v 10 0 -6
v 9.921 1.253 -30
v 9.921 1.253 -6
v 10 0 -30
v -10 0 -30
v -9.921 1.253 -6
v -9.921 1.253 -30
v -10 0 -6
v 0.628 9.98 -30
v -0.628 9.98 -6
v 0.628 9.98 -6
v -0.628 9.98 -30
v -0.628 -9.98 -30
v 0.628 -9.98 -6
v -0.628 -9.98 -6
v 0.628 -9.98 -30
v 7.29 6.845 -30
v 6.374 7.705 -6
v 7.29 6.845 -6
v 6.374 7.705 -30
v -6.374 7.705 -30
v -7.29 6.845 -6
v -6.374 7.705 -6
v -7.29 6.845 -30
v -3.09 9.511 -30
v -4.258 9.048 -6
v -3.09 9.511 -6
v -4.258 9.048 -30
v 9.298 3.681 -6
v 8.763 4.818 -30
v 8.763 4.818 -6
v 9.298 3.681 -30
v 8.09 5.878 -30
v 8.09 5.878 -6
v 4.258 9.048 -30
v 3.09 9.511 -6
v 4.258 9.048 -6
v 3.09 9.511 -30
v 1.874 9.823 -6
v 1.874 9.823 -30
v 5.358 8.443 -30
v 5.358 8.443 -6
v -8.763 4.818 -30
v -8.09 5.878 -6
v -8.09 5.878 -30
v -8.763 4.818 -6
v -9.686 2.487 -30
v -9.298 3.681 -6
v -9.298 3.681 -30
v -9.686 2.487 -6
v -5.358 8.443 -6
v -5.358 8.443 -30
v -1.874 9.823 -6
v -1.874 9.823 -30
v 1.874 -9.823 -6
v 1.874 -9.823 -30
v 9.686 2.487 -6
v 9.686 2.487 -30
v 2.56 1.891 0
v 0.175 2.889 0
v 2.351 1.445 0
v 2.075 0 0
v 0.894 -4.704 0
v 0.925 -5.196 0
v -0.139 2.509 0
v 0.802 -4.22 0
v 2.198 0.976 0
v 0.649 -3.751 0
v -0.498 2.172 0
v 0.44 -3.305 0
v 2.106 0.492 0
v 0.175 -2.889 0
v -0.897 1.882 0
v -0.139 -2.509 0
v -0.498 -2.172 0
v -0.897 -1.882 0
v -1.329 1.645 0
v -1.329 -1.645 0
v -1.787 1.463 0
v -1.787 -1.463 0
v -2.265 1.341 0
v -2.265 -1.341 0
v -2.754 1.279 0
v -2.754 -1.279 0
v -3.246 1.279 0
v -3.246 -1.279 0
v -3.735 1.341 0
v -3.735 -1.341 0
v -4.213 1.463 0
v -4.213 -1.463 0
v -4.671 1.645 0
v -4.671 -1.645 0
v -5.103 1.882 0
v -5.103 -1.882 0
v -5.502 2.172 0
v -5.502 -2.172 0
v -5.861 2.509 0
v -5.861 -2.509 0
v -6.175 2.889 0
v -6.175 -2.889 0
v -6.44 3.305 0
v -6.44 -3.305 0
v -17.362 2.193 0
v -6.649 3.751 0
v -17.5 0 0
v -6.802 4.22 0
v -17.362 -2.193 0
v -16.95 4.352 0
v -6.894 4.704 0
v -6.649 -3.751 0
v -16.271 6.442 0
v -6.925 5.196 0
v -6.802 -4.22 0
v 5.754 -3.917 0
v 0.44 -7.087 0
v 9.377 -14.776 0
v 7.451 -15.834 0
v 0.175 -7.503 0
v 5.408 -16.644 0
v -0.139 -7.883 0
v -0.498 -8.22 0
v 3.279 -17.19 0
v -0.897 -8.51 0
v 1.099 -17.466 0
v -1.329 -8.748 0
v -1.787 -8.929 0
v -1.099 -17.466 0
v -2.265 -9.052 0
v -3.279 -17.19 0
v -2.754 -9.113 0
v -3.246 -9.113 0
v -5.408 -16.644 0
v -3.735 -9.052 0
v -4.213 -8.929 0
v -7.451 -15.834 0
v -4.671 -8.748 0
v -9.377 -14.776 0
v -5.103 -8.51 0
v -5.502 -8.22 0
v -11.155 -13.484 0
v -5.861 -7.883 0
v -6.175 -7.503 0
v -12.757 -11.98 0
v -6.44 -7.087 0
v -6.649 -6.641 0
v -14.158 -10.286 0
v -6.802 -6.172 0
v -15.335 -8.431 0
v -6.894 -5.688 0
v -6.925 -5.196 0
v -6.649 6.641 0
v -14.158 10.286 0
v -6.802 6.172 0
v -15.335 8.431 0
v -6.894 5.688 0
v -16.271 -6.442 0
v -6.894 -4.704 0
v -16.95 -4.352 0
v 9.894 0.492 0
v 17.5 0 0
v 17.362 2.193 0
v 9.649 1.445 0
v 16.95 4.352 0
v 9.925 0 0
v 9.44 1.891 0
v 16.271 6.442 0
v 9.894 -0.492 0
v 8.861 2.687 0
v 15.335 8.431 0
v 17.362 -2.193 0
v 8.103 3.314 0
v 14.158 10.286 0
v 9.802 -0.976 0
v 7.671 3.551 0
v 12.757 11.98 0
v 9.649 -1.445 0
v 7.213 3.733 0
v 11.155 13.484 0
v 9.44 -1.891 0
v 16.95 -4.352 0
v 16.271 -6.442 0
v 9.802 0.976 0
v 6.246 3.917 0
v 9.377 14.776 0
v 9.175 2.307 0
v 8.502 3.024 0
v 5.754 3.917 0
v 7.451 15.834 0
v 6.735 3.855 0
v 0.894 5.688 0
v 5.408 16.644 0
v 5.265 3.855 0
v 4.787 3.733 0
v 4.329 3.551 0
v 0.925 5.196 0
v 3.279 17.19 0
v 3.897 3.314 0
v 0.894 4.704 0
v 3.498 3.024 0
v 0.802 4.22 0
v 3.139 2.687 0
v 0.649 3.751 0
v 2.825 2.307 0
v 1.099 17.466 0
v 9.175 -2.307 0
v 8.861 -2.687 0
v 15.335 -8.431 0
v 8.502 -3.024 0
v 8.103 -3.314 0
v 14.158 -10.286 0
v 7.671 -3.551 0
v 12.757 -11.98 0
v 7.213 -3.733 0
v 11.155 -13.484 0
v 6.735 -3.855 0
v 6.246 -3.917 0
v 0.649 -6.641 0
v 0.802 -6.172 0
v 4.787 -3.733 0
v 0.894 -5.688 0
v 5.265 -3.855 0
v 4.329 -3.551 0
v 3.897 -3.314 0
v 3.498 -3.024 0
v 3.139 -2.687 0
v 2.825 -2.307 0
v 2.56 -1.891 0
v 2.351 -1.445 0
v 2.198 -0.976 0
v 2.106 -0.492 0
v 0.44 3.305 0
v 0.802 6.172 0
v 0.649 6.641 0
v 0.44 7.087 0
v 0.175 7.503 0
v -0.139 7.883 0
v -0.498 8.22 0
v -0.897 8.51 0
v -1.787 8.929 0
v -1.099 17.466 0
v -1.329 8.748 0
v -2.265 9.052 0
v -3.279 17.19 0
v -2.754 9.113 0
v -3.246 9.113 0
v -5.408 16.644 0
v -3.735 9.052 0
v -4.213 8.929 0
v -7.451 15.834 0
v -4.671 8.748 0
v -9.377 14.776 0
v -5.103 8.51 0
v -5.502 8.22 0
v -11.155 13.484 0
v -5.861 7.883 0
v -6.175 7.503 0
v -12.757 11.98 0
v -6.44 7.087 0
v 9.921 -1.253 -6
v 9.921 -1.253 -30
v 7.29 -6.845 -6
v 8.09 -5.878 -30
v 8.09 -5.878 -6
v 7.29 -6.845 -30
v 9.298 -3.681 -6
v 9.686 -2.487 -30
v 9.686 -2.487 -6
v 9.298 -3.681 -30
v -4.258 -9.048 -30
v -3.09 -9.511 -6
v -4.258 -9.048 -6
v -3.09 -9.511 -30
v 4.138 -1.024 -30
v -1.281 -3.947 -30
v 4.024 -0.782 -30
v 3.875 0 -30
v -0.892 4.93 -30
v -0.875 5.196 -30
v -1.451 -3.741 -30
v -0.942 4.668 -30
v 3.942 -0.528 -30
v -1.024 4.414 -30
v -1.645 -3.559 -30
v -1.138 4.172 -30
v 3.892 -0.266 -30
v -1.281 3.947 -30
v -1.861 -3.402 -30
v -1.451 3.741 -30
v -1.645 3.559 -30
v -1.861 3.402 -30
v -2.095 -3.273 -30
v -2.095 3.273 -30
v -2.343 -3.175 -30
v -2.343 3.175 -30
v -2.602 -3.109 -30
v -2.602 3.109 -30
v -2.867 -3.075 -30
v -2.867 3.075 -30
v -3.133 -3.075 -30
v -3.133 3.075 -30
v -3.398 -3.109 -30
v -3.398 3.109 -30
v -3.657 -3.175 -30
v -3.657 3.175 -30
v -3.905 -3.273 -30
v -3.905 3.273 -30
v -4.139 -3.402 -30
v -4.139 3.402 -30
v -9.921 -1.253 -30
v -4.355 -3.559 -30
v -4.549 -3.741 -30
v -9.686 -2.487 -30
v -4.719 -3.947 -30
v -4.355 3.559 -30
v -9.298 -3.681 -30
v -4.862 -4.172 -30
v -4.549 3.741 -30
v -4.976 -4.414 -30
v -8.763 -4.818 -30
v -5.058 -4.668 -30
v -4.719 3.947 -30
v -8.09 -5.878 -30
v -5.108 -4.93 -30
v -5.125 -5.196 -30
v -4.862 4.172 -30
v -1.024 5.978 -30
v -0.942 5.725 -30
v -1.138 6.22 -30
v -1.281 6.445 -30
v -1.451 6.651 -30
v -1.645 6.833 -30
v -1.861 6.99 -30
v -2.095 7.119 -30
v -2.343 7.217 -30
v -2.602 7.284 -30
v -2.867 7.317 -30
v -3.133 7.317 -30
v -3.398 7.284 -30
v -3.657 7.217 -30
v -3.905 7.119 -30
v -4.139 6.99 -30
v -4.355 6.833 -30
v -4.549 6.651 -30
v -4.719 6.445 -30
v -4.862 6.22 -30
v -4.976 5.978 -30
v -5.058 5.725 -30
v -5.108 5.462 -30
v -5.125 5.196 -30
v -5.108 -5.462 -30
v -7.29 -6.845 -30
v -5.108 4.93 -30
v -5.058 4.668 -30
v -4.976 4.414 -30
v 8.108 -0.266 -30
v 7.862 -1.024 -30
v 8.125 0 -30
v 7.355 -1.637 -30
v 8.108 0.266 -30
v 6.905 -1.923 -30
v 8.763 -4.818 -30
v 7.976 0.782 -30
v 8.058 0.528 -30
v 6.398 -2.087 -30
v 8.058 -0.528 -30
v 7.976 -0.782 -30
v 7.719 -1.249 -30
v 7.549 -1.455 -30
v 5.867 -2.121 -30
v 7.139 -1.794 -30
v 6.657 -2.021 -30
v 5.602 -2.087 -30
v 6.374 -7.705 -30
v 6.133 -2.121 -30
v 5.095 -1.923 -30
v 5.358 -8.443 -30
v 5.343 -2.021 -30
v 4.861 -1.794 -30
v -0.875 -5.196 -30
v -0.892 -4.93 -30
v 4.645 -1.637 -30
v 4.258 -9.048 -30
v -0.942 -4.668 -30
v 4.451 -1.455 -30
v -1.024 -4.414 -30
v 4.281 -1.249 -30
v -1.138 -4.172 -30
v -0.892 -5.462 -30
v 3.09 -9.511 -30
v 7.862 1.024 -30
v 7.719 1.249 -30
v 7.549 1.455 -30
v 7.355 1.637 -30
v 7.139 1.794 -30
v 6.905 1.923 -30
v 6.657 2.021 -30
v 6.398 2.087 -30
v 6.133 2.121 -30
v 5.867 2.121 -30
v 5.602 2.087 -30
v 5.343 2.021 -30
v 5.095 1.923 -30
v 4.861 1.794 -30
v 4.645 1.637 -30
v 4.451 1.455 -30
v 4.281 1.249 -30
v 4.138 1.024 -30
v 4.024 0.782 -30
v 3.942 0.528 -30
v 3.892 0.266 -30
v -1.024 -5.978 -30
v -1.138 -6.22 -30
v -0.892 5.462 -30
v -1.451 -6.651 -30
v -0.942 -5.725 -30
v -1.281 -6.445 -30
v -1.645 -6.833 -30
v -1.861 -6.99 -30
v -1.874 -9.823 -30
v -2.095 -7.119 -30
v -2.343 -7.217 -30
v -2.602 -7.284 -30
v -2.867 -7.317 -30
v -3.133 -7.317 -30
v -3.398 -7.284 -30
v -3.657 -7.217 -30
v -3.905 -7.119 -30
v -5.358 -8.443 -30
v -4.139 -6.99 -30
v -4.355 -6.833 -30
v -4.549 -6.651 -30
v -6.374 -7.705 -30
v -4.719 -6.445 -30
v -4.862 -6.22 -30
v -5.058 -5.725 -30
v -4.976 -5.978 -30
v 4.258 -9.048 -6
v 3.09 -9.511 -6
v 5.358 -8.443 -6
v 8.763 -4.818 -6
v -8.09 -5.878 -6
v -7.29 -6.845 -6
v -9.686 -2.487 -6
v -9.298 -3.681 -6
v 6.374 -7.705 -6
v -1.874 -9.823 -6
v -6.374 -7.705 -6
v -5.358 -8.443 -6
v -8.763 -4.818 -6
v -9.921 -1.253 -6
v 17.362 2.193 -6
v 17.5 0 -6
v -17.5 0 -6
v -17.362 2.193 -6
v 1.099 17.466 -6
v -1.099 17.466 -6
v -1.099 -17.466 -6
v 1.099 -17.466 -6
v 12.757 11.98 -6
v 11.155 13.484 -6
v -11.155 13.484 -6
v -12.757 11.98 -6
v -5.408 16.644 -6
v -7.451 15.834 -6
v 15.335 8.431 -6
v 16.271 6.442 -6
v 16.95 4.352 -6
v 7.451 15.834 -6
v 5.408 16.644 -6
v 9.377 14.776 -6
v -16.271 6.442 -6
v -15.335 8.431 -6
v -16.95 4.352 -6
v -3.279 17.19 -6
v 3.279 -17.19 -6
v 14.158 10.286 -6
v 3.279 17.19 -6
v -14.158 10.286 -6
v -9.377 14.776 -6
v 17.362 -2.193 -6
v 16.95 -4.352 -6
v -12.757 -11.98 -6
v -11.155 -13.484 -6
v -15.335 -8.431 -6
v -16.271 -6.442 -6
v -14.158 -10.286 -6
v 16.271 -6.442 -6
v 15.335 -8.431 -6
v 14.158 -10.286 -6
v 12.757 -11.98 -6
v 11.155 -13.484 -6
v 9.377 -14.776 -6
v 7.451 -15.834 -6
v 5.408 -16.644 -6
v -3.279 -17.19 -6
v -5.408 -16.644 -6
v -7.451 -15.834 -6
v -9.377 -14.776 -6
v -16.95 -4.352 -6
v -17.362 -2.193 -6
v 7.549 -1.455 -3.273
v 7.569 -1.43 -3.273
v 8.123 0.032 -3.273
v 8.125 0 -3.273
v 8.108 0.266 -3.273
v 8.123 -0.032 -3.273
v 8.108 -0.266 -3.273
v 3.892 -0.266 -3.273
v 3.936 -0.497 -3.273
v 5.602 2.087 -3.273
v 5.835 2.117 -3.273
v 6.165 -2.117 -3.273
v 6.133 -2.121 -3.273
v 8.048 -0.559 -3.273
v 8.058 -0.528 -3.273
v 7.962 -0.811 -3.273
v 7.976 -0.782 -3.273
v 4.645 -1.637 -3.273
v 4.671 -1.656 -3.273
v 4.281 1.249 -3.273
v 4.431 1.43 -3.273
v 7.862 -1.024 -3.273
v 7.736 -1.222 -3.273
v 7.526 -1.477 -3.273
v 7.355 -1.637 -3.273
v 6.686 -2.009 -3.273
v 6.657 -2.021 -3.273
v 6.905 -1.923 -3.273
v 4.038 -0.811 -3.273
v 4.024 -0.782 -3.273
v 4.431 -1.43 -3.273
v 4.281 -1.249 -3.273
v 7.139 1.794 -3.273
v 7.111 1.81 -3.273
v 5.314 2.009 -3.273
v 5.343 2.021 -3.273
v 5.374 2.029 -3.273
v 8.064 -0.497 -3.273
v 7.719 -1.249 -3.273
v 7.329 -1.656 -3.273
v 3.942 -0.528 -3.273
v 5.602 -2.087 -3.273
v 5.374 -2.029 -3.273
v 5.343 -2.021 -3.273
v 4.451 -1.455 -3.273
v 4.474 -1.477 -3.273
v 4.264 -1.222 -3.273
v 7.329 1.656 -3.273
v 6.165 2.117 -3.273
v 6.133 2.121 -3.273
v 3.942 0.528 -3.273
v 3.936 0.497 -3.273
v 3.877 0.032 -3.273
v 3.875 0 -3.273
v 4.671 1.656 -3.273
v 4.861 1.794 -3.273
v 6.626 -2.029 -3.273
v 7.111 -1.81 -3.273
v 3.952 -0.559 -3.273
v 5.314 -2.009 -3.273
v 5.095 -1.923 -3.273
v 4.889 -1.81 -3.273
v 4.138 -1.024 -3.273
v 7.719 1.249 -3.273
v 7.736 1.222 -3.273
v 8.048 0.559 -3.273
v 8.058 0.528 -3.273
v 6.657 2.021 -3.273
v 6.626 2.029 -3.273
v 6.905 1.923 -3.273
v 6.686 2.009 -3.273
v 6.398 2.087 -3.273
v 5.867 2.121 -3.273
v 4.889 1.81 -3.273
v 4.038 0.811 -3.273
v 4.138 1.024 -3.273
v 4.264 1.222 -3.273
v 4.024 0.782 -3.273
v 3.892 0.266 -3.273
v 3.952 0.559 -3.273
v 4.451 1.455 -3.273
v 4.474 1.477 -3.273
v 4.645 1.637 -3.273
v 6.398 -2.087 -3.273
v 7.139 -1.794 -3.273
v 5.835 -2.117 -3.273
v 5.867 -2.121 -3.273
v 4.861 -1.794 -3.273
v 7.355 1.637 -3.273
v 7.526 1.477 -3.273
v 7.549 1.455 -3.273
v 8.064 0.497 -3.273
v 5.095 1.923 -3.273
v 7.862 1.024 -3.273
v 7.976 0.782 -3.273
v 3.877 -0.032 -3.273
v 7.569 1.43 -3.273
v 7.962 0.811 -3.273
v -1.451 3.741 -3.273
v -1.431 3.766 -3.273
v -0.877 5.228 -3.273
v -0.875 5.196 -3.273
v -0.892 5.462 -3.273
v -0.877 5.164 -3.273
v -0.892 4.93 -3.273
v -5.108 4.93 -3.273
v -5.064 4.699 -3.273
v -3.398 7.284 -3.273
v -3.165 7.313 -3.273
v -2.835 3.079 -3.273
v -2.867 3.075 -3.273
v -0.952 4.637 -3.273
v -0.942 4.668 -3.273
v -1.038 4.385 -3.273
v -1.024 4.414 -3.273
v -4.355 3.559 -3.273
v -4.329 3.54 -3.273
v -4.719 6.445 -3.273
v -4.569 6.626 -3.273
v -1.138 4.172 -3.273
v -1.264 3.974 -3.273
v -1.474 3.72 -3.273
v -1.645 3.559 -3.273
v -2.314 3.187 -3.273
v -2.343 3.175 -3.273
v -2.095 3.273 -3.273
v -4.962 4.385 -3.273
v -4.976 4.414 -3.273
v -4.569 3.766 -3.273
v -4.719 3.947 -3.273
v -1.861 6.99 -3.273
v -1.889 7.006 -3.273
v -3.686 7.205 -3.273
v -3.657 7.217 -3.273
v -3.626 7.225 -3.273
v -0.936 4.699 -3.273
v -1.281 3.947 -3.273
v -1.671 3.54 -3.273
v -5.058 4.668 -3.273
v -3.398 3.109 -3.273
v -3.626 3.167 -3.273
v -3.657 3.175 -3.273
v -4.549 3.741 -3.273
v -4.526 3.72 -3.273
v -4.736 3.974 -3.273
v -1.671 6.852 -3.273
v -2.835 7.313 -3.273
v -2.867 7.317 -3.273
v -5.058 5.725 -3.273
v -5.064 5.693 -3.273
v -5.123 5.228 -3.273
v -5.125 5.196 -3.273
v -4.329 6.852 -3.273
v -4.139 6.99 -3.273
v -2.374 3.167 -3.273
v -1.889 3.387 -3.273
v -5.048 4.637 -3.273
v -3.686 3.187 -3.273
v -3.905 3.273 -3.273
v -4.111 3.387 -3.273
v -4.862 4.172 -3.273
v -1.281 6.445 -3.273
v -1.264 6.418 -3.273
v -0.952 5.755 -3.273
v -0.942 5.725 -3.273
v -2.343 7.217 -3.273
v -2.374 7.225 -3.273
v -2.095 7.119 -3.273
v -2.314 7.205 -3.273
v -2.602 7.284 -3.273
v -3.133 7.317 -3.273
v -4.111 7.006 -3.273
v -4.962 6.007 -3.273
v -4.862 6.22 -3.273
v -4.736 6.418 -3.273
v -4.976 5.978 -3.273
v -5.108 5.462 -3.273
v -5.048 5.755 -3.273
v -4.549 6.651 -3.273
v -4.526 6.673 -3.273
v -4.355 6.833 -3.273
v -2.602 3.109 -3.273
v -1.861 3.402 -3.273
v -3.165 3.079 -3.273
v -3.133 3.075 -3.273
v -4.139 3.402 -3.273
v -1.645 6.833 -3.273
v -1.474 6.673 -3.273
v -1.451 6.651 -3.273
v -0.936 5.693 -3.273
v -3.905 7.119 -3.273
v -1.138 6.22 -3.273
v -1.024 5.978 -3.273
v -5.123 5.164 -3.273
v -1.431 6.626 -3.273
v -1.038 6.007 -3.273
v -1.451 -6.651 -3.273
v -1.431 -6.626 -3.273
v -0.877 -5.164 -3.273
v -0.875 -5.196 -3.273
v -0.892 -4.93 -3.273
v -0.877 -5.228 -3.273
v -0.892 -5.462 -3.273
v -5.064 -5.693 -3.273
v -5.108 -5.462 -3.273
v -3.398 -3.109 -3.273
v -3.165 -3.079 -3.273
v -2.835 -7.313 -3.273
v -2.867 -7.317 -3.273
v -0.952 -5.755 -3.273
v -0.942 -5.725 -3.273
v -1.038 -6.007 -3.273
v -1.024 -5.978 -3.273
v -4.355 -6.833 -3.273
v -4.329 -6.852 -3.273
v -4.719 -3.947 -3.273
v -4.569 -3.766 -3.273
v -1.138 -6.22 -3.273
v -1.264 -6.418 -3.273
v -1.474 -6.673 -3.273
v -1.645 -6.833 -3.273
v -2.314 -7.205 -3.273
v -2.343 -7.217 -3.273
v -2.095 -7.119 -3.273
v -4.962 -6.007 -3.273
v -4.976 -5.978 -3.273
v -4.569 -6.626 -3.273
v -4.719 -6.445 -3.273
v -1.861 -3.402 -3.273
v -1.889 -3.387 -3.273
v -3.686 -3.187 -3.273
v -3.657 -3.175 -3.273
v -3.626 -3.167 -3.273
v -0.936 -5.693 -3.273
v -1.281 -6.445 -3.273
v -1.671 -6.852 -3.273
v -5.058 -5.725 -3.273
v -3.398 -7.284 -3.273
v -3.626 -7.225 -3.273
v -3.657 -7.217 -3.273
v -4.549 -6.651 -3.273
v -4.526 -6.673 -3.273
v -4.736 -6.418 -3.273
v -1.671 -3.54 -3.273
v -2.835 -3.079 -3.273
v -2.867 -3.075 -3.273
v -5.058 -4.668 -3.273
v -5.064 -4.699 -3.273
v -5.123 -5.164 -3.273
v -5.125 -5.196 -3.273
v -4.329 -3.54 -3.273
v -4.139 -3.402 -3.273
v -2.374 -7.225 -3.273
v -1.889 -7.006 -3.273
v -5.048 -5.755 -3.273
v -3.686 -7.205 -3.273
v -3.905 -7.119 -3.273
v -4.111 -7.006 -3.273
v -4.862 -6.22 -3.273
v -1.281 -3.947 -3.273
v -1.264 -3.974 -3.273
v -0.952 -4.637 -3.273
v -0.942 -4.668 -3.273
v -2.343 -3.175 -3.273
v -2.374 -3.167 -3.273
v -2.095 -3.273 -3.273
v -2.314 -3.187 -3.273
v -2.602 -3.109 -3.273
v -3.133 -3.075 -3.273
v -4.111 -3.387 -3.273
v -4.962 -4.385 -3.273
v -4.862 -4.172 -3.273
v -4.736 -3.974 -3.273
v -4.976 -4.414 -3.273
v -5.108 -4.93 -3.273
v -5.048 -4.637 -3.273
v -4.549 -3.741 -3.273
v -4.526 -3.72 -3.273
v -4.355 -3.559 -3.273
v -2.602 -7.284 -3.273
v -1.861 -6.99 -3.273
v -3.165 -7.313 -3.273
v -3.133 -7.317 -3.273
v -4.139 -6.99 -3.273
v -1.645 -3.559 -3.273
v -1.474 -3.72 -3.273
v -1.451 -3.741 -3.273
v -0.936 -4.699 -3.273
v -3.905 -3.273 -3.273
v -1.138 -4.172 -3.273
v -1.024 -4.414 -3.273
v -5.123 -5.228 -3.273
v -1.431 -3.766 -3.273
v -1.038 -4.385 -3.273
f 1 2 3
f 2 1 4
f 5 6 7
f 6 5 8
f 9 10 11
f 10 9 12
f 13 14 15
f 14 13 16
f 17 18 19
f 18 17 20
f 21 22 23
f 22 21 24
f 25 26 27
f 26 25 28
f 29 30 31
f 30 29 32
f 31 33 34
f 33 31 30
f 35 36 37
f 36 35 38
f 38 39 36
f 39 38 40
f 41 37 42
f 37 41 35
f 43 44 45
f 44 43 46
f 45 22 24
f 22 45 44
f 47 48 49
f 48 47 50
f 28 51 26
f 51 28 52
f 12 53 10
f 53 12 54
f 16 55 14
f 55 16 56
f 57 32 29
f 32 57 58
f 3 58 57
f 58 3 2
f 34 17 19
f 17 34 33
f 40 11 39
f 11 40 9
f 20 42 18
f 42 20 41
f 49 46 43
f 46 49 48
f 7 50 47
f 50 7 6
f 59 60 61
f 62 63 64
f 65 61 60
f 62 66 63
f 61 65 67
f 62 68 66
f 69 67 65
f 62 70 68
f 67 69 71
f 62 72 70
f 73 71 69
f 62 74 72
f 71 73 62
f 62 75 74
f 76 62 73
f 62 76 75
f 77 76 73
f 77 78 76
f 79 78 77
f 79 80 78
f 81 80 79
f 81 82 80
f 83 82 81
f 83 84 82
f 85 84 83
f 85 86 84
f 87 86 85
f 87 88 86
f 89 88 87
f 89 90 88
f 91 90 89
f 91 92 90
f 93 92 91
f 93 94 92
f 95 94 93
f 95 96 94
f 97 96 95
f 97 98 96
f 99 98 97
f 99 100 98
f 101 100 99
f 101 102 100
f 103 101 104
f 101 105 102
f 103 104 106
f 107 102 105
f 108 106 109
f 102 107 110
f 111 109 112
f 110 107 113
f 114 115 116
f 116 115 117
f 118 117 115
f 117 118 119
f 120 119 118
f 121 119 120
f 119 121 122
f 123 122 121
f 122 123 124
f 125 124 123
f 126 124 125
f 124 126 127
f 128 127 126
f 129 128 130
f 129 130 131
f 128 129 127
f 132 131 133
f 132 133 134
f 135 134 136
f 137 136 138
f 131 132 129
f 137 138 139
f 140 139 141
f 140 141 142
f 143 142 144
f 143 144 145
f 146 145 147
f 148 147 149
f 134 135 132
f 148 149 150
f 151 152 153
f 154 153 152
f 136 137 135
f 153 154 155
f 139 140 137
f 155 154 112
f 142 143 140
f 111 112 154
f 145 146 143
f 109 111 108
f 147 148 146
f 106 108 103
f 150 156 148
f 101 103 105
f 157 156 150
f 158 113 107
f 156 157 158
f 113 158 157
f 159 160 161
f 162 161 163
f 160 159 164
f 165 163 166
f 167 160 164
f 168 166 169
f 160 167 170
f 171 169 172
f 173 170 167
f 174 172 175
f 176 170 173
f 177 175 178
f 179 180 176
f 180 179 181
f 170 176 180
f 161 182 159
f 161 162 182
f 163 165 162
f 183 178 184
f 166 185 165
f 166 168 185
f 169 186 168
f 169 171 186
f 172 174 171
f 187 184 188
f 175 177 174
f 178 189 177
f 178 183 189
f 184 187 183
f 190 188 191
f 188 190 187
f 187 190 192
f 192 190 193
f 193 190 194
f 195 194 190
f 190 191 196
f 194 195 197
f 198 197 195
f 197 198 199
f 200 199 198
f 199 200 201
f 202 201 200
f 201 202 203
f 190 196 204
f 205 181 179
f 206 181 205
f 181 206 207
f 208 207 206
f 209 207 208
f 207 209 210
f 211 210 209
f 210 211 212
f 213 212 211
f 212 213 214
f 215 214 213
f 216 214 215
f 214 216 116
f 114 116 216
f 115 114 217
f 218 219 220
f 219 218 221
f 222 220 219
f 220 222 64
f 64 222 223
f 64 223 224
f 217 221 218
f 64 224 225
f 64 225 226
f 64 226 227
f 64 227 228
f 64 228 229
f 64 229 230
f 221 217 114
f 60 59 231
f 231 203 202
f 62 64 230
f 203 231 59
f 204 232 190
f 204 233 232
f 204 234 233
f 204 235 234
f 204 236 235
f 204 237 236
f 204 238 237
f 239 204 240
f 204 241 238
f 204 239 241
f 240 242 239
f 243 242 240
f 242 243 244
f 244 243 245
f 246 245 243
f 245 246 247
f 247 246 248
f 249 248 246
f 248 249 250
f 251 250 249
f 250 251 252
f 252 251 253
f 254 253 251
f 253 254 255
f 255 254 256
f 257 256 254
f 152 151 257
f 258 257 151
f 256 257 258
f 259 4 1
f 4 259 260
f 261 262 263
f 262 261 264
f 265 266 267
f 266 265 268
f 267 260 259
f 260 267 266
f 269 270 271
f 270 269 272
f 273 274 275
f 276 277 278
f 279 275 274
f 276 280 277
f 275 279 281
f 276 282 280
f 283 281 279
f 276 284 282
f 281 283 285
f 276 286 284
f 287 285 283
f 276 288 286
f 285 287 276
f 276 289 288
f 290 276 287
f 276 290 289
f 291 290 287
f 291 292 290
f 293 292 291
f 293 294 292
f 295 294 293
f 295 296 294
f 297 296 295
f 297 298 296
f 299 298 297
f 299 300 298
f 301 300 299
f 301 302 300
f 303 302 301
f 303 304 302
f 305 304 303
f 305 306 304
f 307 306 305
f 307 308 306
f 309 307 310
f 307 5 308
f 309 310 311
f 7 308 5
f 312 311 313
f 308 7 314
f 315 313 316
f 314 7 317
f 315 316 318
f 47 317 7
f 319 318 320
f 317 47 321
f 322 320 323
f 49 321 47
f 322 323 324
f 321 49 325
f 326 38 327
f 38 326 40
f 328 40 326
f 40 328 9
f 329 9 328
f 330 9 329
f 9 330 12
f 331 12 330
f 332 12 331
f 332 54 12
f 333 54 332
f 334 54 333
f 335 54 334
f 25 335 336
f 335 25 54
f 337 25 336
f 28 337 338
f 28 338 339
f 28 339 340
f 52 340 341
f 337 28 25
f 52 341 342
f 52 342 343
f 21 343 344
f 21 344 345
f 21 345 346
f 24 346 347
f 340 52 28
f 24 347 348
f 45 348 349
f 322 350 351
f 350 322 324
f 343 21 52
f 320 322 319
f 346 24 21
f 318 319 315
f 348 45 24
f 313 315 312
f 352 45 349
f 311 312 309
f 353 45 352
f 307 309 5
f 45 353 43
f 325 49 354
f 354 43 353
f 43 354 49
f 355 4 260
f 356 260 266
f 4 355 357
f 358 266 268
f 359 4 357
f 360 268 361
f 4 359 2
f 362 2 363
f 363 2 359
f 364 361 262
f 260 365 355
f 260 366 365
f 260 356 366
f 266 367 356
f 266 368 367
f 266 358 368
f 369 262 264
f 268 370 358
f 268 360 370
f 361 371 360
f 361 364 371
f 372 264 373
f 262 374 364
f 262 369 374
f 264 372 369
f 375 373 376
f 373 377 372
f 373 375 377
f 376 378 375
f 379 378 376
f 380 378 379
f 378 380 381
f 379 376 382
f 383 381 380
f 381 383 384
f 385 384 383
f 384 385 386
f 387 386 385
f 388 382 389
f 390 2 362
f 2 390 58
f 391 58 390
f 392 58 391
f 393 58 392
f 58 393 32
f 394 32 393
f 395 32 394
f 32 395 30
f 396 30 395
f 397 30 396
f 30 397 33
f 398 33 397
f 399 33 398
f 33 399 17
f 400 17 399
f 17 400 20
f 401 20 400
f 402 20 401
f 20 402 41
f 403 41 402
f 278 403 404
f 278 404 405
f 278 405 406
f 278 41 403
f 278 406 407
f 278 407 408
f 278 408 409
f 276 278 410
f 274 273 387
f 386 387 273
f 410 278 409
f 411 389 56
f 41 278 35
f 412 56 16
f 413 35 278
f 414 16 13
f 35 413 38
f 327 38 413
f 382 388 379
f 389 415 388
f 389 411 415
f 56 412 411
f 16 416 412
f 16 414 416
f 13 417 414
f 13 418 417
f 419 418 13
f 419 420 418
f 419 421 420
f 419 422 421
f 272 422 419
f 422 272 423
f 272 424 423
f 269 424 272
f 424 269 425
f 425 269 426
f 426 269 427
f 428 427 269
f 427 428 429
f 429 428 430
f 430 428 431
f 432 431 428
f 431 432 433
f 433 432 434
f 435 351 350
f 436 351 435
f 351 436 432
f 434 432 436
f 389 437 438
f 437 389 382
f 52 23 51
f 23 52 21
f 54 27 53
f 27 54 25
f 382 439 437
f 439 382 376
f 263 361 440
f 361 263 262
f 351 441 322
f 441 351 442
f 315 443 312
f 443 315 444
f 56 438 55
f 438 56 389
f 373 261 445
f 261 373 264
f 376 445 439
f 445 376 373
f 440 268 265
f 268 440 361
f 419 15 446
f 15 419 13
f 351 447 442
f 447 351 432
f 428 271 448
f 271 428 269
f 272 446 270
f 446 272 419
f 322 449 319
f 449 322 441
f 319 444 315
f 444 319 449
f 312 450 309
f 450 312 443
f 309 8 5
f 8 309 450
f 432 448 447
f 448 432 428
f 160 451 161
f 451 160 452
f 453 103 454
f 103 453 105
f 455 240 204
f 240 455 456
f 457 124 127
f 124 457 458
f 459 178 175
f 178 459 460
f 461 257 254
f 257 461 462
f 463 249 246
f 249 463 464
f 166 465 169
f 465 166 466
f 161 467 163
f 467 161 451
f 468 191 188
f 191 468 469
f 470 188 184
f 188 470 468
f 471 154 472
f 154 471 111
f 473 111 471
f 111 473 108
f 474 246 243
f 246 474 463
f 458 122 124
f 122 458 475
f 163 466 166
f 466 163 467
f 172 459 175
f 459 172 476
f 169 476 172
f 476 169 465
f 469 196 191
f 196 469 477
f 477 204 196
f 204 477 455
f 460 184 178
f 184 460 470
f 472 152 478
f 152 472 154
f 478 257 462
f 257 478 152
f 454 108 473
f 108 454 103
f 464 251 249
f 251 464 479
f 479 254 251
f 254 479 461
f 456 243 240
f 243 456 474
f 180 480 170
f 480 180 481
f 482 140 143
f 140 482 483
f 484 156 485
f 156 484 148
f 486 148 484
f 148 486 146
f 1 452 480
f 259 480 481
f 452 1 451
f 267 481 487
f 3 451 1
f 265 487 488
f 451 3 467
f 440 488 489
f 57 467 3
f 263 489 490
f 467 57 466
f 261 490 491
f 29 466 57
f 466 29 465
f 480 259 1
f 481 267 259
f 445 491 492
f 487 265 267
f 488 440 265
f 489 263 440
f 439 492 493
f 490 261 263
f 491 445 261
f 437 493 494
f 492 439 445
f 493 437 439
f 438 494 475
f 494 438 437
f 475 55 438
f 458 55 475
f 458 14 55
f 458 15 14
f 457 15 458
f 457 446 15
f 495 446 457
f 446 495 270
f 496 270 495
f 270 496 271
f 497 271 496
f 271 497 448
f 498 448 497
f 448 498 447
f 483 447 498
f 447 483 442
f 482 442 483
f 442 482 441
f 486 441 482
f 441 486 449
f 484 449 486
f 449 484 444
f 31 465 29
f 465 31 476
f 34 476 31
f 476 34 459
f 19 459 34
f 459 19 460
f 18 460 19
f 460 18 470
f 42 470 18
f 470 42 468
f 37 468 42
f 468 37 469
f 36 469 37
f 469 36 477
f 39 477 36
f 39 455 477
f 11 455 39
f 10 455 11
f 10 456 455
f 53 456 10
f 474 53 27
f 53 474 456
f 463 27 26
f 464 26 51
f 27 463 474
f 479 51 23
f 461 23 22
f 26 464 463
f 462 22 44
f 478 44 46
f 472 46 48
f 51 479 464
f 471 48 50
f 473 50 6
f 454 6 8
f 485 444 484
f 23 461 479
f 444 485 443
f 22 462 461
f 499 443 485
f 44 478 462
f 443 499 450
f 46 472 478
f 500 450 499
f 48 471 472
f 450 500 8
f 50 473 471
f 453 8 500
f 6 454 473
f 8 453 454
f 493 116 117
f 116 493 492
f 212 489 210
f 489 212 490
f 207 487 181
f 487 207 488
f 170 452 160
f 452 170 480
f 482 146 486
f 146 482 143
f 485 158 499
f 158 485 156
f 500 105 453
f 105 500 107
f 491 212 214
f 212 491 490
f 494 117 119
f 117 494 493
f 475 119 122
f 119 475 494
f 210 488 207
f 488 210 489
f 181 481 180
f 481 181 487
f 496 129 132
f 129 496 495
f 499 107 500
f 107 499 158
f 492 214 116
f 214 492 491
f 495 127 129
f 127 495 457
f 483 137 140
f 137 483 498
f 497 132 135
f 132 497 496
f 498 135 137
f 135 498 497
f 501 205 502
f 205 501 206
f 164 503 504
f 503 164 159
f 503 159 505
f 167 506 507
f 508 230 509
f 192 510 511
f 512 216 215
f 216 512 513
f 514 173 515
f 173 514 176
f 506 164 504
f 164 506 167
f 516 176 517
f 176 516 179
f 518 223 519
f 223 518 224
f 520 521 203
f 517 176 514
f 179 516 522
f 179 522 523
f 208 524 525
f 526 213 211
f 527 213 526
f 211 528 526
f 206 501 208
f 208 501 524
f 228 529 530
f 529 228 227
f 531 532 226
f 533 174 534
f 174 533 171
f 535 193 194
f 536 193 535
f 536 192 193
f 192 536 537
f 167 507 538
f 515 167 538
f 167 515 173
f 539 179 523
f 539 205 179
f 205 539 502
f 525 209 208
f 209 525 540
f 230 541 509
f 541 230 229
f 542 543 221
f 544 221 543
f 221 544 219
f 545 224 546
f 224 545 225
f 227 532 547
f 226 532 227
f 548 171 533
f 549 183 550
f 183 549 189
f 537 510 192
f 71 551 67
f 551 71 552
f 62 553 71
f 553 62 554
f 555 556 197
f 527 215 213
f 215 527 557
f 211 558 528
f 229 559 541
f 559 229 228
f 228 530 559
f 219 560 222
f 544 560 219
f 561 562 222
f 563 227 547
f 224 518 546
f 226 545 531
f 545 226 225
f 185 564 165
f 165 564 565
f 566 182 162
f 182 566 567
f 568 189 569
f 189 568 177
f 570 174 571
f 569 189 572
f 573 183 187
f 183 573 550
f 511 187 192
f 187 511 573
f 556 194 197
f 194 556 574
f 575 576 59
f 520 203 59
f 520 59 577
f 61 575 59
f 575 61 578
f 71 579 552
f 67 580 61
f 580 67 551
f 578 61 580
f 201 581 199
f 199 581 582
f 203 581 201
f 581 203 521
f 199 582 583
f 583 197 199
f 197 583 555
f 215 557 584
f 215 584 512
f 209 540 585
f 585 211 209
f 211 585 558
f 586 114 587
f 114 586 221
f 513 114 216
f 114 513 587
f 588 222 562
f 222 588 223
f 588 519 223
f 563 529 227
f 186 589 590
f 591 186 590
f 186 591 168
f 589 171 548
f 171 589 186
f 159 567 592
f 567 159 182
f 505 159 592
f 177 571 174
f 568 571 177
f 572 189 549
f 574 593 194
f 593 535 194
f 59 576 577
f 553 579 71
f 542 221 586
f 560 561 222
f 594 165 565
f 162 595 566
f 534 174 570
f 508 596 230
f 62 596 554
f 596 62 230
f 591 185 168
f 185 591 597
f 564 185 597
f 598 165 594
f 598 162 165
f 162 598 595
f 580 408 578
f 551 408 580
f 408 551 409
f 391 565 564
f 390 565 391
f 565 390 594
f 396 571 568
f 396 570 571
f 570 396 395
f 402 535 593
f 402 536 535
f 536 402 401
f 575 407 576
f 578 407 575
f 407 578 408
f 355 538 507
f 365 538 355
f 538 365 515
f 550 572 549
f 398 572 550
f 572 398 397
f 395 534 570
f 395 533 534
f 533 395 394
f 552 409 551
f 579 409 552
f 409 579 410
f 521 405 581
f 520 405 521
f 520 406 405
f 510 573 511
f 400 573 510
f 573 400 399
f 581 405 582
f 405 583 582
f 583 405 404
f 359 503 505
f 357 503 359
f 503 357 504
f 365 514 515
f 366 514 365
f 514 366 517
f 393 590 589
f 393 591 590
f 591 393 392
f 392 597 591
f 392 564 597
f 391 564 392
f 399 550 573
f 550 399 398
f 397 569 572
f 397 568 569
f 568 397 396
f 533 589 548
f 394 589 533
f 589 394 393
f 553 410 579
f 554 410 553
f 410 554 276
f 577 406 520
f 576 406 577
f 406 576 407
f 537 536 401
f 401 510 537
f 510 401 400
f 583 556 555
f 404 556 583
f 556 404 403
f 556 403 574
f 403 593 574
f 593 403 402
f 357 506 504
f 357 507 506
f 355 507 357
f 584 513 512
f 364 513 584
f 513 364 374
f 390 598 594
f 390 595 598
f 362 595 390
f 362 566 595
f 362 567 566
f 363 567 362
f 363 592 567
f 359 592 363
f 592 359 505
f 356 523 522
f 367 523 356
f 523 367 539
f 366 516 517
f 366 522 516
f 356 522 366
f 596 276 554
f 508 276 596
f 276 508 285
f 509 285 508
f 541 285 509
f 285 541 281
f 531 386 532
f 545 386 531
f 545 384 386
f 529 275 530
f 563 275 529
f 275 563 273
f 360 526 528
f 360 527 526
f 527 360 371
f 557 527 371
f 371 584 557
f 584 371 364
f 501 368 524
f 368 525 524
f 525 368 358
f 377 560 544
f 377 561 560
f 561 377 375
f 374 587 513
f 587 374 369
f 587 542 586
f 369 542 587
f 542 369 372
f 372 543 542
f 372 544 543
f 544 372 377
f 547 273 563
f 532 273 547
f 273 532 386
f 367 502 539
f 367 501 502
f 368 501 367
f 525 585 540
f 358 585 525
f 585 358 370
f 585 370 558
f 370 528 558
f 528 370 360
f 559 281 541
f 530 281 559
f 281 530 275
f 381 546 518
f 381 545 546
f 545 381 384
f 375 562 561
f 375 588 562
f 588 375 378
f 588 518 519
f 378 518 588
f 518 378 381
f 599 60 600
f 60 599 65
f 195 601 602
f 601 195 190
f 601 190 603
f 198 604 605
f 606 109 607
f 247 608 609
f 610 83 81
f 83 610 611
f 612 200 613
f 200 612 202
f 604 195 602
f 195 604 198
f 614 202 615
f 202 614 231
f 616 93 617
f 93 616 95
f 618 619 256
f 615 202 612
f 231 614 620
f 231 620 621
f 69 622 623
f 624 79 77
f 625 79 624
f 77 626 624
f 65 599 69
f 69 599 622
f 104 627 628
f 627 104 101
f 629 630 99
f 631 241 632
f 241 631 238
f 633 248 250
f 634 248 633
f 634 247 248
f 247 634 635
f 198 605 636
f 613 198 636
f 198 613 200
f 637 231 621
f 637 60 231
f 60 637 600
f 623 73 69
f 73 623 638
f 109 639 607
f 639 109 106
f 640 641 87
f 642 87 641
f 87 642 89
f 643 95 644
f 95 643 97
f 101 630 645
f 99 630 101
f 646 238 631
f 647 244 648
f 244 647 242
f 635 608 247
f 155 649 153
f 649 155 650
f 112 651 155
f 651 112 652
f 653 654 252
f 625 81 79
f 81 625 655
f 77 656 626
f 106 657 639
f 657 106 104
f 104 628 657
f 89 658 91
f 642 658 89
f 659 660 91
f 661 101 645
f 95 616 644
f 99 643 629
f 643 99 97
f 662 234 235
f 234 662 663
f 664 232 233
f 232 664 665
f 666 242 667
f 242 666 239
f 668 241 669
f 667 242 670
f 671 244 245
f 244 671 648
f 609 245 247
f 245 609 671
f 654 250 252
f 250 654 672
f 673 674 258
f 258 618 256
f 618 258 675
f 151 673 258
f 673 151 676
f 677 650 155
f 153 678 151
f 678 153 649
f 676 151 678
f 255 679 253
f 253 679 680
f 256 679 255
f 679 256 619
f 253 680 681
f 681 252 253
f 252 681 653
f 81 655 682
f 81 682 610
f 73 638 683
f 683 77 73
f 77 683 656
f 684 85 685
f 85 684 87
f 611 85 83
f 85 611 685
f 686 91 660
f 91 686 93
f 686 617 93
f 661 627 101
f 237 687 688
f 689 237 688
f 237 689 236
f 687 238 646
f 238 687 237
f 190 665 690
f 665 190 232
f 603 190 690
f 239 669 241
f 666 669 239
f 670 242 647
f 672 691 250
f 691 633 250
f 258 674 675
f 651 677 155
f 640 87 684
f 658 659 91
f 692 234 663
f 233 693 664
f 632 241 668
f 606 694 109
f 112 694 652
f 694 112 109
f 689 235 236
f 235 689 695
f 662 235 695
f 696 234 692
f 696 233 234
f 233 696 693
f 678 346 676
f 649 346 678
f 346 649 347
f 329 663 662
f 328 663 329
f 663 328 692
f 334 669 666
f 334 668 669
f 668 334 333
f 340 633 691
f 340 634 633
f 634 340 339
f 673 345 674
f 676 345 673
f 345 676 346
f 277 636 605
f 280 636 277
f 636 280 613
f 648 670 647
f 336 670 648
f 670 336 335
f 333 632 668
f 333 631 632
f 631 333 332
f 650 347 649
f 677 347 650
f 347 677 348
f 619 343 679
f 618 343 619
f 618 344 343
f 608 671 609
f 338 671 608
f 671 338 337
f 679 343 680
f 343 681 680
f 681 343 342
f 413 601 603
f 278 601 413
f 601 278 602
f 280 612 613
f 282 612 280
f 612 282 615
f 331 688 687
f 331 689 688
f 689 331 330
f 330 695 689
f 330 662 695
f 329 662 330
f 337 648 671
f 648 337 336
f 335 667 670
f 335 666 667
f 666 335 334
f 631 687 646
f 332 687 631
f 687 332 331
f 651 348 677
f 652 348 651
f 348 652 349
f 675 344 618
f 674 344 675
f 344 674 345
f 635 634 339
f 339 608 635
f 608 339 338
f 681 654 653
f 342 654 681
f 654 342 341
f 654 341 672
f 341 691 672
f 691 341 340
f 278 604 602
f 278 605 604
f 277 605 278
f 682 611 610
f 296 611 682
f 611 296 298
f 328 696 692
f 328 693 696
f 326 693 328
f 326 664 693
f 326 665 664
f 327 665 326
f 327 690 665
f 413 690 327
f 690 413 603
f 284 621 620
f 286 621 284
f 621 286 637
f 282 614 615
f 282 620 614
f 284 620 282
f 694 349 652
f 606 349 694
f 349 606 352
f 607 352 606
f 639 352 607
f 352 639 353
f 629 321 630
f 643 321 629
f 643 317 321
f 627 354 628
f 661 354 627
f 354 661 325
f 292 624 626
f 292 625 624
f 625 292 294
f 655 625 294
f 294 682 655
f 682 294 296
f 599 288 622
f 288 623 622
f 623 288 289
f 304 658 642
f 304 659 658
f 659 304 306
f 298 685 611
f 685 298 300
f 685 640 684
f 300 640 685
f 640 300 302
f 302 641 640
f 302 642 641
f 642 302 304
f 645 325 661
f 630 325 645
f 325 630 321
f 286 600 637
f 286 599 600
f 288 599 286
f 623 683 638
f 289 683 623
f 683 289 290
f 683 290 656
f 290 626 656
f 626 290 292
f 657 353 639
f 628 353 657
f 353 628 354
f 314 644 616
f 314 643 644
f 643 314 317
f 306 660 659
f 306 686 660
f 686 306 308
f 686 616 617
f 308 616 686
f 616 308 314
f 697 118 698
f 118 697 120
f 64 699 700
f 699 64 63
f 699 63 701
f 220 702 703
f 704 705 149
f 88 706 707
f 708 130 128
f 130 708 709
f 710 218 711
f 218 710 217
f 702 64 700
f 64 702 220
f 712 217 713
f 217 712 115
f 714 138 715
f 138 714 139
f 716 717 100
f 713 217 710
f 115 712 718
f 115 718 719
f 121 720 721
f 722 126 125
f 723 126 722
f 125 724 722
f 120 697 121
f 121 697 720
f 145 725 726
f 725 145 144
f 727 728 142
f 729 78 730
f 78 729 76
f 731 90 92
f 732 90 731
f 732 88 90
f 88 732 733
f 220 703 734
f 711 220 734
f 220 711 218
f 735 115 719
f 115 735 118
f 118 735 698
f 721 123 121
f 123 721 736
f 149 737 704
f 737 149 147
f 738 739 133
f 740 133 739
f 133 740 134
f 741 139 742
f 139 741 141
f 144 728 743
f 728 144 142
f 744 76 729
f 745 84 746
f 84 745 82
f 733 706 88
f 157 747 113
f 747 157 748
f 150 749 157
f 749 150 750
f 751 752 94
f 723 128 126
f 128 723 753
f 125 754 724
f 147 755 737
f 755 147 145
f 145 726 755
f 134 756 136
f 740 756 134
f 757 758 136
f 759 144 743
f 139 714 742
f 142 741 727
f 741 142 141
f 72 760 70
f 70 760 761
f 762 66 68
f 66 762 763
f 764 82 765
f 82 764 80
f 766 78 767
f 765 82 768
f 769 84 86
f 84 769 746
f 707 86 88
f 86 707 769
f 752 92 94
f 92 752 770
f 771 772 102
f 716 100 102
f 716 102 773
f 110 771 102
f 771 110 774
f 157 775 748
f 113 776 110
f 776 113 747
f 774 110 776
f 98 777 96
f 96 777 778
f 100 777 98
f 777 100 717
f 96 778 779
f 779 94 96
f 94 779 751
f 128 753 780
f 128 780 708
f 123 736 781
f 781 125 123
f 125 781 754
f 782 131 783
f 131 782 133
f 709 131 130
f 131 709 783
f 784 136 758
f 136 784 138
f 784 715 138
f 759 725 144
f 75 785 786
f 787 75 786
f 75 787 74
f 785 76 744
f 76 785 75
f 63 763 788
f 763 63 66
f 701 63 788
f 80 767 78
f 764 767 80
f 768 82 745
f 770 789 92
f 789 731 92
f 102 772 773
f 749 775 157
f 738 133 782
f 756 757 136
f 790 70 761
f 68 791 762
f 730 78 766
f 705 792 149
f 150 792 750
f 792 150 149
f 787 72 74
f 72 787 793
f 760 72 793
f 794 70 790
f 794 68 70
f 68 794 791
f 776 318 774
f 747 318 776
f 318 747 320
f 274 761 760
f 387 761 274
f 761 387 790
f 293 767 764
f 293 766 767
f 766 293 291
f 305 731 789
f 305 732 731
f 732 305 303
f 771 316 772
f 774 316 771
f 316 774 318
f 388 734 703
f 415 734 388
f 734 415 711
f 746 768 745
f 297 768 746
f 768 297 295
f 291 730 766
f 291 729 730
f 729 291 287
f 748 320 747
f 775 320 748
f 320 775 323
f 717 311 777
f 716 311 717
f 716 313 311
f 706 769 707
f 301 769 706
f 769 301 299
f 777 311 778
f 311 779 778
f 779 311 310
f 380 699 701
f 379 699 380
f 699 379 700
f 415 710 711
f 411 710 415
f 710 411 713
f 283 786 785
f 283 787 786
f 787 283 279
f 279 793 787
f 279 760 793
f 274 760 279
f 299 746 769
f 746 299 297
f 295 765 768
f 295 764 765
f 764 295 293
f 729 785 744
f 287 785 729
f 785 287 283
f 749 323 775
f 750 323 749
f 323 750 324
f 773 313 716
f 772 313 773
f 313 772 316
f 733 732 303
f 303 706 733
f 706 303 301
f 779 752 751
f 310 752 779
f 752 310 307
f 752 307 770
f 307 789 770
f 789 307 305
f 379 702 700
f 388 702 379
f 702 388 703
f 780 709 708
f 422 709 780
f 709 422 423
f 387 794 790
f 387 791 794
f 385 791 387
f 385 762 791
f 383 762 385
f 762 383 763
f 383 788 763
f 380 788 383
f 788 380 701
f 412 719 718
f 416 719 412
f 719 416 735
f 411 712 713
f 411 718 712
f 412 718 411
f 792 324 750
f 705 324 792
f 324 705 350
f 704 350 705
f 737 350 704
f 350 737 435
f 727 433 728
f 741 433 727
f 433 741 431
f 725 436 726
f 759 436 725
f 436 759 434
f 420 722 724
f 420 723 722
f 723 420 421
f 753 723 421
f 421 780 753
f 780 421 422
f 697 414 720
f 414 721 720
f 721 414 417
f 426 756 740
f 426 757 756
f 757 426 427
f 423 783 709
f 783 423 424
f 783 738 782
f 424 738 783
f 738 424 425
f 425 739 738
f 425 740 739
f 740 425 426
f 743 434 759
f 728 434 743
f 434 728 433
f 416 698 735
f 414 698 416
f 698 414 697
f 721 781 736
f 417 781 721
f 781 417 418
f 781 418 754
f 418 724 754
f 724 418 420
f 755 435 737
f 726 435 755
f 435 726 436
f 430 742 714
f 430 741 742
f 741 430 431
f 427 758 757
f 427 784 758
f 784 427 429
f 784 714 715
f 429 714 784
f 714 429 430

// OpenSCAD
$fn = 50;


difference() {
	union() {
		translate(v = [0, 0, -30.0000000000]) {
			cylinder(h = 30, r = 10.0000000000);
		}
		translate(v = [0, 0, -6.0000000000]) {
			cylinder(h = 6, r = 17.5000000000);
		}
	}
	union() {
		translate(v = [6.0000000000, 0.0000000000, 0]) {
			rotate(a = [0, 0, 0]) {
				difference() {
					union() {
						#translate(v = [0, 0, -3.5000000000]) {
							cylinder(h = 3.5000000000, r = 10.0000000000, r1 = 2.0000000000, r2 = 3.9250000000);
						}
						#translate(v = [0, 0, -30.0000000000]) {
							cylinder(h = 30, r = 2.0000000000);
						}
						#translate(v = [0, 0, -30.0000000000]) {
							cylinder(h = 30, r = 2.1250000000);
						}
						#translate(v = [0, 0, -30.0000000000]) {
							cylinder(h = 30, r = 2.0000000000);
						}
					}
					union();
				}
			}
		}
		translate(v = [-3.0000000000, 5.1961524227, 0]) {
			rotate(a = [0, 0, 0]) {
				difference() {
					union() {
						#translate(v = [0, 0, -3.5000000000]) {
							cylinder(h = 3.5000000000, r = 10.0000000000, r1 = 2.0000000000, r2 = 3.9250000000);
						}
						#translate(v = [0, 0, -30.0000000000]) {
							cylinder(h = 30, r = 2.0000000000);
						}
						#translate(v = [0, 0, -30.0000000000]) {
							cylinder(h = 30, r = 2.1250000000);
						}
						#translate(v = [0, 0, -30.0000000000]) {
							cylinder(h = 30, r = 2.0000000000);
						}
					}
					union();
				}
			}
		}
		translate(v = [-3.0000000000, -5.1961524227, 0]) {
			rotate(a = [0, 0, 0]) {
				difference() {
					union() {
						#translate(v = [0, 0, -3.5000000000]) {
							cylinder(h = 3.5000000000, r = 10.0000000000, r1 = 2.0000000000, r2 = 3.9250000000);
						}
						#translate(v = [0, 0, -30.0000000000]) {
							cylinder(h = 30, r = 2.0000000000);
						}
						#translate(v = [0, 0, -30.0000000000]) {
							cylinder(h = 30, r = 2.1250000000);
						}
						#translate(v = [0, 0, -30.0000000000]) {
							cylinder(h = 30, r = 2.0000000000);
						}
					}
					union();
				}
			}
		}
	}
}
